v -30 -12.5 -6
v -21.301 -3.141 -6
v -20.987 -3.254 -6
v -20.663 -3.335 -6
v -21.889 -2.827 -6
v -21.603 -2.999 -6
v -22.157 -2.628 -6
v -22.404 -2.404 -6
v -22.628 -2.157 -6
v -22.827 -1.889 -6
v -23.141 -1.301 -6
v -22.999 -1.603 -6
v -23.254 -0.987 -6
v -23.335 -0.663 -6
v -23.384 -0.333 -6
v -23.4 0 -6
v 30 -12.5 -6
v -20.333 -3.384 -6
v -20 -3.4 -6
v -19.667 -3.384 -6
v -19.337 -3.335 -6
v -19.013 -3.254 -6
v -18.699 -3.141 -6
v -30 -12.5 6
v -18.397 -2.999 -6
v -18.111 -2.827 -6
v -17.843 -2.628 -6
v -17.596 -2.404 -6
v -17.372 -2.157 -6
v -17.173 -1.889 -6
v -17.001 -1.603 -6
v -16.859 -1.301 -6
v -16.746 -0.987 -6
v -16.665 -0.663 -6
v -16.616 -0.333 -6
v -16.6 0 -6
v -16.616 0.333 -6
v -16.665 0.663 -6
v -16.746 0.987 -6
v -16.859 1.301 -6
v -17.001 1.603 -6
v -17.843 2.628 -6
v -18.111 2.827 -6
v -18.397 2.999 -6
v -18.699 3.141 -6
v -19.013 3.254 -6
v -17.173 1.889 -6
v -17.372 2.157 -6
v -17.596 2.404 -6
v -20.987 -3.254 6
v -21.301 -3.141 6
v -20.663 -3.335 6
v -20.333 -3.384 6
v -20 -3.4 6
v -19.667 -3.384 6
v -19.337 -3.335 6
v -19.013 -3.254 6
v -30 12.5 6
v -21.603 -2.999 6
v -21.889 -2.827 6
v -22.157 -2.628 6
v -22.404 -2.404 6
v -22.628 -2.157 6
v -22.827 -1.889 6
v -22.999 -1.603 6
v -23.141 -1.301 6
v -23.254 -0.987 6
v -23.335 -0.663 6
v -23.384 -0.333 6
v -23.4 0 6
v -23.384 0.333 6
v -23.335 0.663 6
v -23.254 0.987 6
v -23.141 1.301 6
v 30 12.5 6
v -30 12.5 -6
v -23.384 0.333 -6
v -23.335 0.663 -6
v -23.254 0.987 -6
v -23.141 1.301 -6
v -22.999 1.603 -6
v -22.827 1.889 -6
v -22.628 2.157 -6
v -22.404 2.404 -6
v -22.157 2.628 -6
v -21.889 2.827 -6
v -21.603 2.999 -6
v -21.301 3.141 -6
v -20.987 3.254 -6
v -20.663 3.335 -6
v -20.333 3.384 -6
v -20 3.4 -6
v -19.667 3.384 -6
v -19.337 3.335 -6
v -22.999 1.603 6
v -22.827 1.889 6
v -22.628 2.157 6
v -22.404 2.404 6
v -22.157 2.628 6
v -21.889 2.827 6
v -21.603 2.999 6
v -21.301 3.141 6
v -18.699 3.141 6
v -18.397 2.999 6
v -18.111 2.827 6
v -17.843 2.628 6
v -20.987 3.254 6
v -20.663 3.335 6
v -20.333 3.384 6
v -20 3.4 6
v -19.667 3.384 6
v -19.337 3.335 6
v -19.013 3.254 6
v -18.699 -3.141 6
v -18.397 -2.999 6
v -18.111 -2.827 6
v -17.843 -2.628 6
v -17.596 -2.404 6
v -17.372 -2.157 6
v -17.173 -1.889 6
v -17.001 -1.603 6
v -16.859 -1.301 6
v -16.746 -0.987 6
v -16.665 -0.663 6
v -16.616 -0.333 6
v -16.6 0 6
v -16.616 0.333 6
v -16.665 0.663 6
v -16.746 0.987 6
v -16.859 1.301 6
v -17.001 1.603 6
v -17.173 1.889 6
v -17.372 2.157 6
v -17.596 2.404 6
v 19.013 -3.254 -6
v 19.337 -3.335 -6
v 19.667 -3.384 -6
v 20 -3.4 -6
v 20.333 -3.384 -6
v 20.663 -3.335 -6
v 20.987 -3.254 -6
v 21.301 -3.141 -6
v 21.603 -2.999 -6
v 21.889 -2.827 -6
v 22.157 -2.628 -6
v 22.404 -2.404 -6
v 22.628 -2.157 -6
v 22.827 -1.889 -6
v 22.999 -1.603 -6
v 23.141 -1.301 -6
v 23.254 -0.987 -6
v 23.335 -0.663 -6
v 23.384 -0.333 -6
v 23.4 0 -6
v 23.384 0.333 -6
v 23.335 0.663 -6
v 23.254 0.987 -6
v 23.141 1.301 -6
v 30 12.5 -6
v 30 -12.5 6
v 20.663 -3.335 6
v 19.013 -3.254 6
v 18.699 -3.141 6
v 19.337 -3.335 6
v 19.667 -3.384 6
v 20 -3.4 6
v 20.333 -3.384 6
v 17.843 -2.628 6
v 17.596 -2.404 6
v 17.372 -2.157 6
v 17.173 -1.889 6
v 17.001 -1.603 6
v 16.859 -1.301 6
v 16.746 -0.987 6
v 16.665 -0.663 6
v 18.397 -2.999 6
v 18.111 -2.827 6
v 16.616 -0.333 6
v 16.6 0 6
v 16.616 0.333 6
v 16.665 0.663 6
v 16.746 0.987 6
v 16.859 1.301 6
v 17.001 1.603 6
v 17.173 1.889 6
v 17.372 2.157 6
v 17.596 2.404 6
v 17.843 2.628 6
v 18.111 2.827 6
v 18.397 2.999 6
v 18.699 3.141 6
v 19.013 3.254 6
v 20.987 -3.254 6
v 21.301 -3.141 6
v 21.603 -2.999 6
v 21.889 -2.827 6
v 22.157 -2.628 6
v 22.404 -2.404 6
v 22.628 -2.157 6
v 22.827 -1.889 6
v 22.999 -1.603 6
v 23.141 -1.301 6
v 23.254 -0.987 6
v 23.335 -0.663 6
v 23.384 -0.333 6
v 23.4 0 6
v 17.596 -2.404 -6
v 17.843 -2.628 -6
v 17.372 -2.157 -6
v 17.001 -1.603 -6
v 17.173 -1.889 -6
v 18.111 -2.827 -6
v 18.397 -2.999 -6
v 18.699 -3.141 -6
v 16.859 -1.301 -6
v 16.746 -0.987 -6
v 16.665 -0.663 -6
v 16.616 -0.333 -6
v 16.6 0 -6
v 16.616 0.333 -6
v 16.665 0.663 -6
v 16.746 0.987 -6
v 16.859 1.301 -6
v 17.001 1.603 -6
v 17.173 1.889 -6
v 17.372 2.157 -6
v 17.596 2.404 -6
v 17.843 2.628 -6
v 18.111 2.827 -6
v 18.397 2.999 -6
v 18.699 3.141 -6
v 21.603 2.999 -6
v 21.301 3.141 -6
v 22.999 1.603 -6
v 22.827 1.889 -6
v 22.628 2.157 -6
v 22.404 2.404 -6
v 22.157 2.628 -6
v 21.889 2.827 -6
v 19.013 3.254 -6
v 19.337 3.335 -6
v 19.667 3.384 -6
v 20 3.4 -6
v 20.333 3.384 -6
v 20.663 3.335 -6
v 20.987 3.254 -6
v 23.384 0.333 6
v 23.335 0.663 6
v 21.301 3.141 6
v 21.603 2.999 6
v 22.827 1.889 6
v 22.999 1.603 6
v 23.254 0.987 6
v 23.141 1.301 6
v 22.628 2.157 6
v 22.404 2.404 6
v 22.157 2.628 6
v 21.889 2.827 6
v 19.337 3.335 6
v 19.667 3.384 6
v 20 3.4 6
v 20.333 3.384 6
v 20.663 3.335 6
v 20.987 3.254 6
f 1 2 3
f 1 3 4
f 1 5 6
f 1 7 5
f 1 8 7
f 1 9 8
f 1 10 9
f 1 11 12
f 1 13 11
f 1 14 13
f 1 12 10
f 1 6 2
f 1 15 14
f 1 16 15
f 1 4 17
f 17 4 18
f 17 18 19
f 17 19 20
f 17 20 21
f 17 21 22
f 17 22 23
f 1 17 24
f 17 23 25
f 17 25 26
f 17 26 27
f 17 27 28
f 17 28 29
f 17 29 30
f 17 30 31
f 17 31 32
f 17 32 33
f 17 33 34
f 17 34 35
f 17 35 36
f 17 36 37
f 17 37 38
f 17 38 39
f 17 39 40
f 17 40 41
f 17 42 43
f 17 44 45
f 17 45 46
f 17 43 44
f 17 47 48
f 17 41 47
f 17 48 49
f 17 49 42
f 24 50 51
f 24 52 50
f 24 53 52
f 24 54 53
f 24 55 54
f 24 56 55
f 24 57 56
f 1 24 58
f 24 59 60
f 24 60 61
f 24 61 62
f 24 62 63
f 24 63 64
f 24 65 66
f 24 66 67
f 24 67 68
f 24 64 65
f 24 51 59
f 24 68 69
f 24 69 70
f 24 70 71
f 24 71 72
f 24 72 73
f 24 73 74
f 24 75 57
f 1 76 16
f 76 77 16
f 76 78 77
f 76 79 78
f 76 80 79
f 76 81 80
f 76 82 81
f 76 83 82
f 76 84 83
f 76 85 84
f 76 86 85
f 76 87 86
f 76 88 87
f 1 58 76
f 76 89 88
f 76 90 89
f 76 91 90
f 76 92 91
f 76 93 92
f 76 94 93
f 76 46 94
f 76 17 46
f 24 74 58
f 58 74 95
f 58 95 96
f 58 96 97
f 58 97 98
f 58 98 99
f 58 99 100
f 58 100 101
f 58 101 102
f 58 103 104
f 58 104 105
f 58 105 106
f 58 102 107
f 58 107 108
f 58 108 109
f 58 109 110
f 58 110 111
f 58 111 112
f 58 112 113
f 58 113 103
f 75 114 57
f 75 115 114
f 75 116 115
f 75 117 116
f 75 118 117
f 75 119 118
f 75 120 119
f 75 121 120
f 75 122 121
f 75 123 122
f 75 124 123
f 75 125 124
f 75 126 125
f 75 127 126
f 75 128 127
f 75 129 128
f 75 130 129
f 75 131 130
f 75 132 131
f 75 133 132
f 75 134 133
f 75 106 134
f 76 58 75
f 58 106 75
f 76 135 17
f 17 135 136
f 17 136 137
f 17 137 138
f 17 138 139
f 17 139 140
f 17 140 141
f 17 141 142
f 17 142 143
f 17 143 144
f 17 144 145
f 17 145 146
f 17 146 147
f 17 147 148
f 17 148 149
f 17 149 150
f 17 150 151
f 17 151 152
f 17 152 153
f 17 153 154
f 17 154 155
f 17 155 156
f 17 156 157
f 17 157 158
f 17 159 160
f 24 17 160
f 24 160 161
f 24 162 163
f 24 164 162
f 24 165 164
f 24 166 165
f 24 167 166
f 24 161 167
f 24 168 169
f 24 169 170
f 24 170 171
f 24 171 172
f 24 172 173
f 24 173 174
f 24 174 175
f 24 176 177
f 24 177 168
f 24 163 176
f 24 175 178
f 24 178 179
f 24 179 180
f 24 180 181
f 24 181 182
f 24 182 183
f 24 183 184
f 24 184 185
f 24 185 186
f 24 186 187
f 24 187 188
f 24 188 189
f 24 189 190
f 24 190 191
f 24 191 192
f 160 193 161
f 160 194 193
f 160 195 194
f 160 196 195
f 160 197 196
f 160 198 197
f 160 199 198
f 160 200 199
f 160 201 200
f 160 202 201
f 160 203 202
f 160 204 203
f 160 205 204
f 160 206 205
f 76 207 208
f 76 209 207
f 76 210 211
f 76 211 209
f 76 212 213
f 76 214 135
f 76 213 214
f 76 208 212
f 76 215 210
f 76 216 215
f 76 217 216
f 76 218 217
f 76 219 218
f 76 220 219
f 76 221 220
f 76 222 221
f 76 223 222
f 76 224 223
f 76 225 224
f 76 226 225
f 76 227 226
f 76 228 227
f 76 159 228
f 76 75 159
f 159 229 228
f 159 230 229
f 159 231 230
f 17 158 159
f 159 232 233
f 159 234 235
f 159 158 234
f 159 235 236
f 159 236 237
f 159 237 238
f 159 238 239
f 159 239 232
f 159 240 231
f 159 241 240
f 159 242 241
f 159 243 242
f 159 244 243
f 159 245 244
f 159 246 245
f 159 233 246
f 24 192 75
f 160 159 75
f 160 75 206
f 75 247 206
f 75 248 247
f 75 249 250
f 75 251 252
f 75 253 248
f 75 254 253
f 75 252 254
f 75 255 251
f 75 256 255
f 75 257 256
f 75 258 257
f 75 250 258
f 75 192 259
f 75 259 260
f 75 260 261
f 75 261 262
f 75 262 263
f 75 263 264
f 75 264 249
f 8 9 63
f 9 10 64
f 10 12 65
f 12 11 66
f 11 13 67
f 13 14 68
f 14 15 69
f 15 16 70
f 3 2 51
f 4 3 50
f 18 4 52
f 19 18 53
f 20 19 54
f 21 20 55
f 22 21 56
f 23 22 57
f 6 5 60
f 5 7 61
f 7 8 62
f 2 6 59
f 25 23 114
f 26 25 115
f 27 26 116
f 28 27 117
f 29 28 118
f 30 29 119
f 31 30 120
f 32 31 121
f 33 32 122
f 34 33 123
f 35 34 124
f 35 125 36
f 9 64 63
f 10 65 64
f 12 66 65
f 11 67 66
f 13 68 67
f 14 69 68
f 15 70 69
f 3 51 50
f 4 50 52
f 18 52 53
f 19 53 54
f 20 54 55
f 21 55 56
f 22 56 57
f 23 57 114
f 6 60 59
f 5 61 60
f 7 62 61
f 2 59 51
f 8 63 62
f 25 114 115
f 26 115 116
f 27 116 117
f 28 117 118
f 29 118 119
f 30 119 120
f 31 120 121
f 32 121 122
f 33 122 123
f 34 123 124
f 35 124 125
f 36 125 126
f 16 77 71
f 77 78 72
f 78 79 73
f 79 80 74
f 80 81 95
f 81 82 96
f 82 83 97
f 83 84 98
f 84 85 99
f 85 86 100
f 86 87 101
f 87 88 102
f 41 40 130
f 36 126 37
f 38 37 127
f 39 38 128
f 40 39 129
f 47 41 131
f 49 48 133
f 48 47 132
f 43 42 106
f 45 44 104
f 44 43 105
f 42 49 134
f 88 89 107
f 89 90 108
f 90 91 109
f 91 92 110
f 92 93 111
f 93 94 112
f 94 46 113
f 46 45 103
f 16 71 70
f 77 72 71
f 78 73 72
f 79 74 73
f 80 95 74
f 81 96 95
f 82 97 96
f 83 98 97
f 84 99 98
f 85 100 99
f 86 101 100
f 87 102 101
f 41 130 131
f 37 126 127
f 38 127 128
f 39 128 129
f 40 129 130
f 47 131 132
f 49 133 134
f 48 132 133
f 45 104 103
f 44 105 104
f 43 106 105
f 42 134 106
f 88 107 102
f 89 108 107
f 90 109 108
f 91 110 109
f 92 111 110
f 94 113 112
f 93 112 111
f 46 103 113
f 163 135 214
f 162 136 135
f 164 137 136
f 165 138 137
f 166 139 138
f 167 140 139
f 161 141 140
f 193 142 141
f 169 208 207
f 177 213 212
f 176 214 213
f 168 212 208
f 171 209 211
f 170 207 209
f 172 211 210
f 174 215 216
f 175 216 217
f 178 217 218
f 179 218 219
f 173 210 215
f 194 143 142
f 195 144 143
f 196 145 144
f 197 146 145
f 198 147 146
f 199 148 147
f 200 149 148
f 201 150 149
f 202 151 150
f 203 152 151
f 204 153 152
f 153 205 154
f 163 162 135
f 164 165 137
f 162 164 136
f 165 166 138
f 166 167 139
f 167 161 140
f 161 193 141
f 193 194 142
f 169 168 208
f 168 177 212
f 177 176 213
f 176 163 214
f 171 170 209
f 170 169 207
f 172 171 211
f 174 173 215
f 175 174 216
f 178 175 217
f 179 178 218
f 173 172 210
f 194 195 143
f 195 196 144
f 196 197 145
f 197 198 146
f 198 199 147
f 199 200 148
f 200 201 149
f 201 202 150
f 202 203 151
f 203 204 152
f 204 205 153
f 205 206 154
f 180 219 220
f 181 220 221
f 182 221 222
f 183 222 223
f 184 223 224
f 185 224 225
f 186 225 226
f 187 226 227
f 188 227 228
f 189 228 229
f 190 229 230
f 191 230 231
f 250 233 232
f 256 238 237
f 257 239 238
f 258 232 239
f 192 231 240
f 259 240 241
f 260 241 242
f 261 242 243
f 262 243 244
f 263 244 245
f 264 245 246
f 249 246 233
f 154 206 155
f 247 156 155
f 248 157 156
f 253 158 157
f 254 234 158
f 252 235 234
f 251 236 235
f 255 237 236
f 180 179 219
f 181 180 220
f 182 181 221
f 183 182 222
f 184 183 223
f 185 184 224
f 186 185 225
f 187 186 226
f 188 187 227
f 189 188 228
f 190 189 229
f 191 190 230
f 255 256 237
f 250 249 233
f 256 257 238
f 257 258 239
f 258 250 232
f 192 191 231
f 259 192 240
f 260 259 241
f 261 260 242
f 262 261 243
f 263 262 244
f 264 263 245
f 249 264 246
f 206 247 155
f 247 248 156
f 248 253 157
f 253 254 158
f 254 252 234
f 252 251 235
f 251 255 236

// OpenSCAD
$fn = 64;

difference() {
  cube([60, 25, 12], center = true);
  for (x = [-20, 20]) {
    translate([x, 0, 0]) cylinder(h = 20, r = 3.4, center = true);
  }
}
